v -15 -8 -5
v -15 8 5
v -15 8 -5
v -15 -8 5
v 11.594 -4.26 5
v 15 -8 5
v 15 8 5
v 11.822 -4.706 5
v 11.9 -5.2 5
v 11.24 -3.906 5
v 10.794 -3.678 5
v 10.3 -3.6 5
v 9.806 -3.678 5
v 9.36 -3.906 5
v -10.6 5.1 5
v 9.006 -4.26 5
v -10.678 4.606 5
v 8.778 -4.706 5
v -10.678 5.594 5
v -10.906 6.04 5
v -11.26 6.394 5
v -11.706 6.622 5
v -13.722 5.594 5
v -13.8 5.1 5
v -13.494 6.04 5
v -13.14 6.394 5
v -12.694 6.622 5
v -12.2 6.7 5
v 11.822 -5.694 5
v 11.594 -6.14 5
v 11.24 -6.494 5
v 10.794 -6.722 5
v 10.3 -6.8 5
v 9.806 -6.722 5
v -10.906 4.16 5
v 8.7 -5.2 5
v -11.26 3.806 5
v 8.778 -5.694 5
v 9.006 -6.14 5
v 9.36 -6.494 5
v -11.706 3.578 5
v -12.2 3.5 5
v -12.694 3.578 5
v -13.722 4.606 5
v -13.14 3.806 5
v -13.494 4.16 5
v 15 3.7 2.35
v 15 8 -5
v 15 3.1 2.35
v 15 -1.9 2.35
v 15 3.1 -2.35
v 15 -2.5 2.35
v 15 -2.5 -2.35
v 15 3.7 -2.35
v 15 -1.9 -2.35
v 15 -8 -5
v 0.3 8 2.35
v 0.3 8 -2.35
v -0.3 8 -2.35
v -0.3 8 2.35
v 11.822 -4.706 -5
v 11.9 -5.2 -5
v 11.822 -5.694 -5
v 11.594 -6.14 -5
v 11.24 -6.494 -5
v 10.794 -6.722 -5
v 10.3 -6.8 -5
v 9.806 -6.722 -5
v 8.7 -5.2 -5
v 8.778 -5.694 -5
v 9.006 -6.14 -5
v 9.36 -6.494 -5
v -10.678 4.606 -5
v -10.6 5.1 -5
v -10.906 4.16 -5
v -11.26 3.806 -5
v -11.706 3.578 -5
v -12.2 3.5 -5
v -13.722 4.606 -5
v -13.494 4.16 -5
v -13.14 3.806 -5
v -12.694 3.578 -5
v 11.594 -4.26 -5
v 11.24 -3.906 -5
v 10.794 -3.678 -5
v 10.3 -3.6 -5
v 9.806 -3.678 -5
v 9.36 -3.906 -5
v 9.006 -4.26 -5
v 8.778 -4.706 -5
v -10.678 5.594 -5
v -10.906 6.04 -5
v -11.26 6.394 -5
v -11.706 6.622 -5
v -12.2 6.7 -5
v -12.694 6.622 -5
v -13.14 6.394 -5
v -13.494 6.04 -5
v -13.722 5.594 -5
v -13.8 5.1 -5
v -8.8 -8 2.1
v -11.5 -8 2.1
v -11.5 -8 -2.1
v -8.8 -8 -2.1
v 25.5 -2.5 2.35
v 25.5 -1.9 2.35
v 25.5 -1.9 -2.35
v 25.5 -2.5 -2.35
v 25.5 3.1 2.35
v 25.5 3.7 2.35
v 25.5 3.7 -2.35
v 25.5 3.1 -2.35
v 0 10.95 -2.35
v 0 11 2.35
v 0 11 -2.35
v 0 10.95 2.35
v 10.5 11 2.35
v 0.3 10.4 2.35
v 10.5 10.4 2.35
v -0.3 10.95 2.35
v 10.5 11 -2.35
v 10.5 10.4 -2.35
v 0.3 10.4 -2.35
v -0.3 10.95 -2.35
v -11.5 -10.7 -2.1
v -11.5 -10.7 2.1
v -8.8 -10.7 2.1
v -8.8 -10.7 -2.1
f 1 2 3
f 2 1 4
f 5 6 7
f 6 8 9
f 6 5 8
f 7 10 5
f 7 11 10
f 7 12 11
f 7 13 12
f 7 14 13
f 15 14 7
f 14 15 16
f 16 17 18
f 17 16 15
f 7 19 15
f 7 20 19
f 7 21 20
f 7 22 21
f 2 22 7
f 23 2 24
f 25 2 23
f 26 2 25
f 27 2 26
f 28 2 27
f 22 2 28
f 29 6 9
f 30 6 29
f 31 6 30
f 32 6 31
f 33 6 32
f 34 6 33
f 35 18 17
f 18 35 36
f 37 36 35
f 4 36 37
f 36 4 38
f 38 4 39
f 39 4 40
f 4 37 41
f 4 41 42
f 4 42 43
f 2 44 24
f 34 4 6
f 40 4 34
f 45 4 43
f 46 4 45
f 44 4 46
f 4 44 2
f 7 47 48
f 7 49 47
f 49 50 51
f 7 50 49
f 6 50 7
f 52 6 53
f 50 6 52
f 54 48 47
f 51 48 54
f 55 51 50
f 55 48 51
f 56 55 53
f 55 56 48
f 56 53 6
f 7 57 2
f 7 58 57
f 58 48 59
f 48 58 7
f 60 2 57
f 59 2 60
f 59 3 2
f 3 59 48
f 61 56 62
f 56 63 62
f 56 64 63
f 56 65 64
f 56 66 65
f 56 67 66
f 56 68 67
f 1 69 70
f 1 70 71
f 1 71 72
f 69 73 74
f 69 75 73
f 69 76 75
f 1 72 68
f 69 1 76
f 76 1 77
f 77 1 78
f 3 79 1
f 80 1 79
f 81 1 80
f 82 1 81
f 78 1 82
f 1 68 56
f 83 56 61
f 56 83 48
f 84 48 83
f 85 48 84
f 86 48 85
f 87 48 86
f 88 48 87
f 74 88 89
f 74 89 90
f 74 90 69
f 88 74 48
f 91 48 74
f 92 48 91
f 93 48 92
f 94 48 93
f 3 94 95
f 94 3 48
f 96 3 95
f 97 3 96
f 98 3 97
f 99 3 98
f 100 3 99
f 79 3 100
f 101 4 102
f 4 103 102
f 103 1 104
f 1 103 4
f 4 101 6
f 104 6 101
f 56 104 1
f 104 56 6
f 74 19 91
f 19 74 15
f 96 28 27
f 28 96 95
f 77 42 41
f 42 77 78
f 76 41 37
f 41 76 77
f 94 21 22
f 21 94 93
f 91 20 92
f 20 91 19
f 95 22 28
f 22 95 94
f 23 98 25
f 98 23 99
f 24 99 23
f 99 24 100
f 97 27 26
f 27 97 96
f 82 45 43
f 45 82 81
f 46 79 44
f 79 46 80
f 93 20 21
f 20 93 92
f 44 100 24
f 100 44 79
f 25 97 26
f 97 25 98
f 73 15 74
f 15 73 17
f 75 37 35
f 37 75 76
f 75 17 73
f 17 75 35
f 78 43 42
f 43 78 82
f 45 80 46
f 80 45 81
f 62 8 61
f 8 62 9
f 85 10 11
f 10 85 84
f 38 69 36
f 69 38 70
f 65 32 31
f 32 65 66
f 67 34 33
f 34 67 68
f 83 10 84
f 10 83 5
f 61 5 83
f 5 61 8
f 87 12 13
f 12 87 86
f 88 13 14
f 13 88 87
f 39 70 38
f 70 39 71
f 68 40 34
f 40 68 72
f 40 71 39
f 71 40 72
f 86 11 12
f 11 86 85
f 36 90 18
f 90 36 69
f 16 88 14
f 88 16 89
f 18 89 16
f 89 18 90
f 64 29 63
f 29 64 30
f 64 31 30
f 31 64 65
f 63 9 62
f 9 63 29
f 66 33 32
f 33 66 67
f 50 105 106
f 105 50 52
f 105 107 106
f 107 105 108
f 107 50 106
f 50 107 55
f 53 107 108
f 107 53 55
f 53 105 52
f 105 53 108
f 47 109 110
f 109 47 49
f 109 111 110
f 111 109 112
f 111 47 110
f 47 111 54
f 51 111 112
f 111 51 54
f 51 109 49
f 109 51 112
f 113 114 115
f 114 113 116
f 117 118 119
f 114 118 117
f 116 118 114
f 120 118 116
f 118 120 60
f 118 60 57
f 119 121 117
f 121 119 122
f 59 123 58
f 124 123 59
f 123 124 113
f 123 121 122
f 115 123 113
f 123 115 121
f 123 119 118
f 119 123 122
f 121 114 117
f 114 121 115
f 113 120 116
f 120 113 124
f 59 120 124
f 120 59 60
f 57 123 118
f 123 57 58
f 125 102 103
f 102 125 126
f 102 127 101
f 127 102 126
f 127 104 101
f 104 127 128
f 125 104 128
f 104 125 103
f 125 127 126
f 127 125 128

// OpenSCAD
$fn = 20;
interruptor = [30, 16, 10];
terminal = [10.5, 0.6, 4.7];
bultito = [2.7, 2.7, 4.2];
dagujero = 3.2;
xoffsets = [1.2, 23.7];
yoffsets = [1.3, -1.2];

module interruptor(adornos=false) {
    difference() {
        color("gray")
            cube(interruptor, center=true);
        translate([-interruptor[0]/2+dagujero/2+xoffsets[0], +interruptor[1]/2-dagujero/2-yoffsets[0], 0])
            cylinder(d=dagujero, h=interruptor[2]*1.01, center=true);
        translate([-interruptor[0]/2+dagujero/2+xoffsets[1], -interruptor[1]/2+dagujero/2-yoffsets[1], 0])
            cylinder(d=dagujero, h=interruptor[2]*1.01, center=true);
    }
    if (adornos) {
        color("black")
            translate([-interruptor[0]/2+bultito[0]/2+3.5, -interruptor[1]/2-bultito[1]/2, 0])
                cube(bultito, center=true);
        color("orange") {
            for(yoffset=[5.5, 11.1])
                translate([interruptor[0]/2+terminal[0]/2, -interruptor[1]/2+terminal[1]/2+yoffset, 0])
                    cube(terminal, center=true);
            translate([terminal[0]/2, interruptor[1]/2-terminal[1]/2+3, 0])
                cube(terminal, center=true);
            translate([0, 5.7, 0])
                rotate([0, 0, 90])
                    cube(terminal, center=true);
        }
    }
}

chapa = [35, 20, 4];
despegado = 0.5;

module soporte() {
    aletas = 20;
    base = [chapa[0], chapa[2], despegado*2+chapa[2]*2+interruptor[2]+aletas];

    yoffset = 2;
    for(zoffset=[-1, +1])
        translate([0, yoffset, zoffset*(chapa[2]/2+interruptor[2]/2+despegado)])
            cube(chapa, center=true);
    translate([0, base[1]/2+chapa[1]/2+yoffset, 0])
        cube(base, center=true);
}

interruptor(adornos=true);
%soporte();
